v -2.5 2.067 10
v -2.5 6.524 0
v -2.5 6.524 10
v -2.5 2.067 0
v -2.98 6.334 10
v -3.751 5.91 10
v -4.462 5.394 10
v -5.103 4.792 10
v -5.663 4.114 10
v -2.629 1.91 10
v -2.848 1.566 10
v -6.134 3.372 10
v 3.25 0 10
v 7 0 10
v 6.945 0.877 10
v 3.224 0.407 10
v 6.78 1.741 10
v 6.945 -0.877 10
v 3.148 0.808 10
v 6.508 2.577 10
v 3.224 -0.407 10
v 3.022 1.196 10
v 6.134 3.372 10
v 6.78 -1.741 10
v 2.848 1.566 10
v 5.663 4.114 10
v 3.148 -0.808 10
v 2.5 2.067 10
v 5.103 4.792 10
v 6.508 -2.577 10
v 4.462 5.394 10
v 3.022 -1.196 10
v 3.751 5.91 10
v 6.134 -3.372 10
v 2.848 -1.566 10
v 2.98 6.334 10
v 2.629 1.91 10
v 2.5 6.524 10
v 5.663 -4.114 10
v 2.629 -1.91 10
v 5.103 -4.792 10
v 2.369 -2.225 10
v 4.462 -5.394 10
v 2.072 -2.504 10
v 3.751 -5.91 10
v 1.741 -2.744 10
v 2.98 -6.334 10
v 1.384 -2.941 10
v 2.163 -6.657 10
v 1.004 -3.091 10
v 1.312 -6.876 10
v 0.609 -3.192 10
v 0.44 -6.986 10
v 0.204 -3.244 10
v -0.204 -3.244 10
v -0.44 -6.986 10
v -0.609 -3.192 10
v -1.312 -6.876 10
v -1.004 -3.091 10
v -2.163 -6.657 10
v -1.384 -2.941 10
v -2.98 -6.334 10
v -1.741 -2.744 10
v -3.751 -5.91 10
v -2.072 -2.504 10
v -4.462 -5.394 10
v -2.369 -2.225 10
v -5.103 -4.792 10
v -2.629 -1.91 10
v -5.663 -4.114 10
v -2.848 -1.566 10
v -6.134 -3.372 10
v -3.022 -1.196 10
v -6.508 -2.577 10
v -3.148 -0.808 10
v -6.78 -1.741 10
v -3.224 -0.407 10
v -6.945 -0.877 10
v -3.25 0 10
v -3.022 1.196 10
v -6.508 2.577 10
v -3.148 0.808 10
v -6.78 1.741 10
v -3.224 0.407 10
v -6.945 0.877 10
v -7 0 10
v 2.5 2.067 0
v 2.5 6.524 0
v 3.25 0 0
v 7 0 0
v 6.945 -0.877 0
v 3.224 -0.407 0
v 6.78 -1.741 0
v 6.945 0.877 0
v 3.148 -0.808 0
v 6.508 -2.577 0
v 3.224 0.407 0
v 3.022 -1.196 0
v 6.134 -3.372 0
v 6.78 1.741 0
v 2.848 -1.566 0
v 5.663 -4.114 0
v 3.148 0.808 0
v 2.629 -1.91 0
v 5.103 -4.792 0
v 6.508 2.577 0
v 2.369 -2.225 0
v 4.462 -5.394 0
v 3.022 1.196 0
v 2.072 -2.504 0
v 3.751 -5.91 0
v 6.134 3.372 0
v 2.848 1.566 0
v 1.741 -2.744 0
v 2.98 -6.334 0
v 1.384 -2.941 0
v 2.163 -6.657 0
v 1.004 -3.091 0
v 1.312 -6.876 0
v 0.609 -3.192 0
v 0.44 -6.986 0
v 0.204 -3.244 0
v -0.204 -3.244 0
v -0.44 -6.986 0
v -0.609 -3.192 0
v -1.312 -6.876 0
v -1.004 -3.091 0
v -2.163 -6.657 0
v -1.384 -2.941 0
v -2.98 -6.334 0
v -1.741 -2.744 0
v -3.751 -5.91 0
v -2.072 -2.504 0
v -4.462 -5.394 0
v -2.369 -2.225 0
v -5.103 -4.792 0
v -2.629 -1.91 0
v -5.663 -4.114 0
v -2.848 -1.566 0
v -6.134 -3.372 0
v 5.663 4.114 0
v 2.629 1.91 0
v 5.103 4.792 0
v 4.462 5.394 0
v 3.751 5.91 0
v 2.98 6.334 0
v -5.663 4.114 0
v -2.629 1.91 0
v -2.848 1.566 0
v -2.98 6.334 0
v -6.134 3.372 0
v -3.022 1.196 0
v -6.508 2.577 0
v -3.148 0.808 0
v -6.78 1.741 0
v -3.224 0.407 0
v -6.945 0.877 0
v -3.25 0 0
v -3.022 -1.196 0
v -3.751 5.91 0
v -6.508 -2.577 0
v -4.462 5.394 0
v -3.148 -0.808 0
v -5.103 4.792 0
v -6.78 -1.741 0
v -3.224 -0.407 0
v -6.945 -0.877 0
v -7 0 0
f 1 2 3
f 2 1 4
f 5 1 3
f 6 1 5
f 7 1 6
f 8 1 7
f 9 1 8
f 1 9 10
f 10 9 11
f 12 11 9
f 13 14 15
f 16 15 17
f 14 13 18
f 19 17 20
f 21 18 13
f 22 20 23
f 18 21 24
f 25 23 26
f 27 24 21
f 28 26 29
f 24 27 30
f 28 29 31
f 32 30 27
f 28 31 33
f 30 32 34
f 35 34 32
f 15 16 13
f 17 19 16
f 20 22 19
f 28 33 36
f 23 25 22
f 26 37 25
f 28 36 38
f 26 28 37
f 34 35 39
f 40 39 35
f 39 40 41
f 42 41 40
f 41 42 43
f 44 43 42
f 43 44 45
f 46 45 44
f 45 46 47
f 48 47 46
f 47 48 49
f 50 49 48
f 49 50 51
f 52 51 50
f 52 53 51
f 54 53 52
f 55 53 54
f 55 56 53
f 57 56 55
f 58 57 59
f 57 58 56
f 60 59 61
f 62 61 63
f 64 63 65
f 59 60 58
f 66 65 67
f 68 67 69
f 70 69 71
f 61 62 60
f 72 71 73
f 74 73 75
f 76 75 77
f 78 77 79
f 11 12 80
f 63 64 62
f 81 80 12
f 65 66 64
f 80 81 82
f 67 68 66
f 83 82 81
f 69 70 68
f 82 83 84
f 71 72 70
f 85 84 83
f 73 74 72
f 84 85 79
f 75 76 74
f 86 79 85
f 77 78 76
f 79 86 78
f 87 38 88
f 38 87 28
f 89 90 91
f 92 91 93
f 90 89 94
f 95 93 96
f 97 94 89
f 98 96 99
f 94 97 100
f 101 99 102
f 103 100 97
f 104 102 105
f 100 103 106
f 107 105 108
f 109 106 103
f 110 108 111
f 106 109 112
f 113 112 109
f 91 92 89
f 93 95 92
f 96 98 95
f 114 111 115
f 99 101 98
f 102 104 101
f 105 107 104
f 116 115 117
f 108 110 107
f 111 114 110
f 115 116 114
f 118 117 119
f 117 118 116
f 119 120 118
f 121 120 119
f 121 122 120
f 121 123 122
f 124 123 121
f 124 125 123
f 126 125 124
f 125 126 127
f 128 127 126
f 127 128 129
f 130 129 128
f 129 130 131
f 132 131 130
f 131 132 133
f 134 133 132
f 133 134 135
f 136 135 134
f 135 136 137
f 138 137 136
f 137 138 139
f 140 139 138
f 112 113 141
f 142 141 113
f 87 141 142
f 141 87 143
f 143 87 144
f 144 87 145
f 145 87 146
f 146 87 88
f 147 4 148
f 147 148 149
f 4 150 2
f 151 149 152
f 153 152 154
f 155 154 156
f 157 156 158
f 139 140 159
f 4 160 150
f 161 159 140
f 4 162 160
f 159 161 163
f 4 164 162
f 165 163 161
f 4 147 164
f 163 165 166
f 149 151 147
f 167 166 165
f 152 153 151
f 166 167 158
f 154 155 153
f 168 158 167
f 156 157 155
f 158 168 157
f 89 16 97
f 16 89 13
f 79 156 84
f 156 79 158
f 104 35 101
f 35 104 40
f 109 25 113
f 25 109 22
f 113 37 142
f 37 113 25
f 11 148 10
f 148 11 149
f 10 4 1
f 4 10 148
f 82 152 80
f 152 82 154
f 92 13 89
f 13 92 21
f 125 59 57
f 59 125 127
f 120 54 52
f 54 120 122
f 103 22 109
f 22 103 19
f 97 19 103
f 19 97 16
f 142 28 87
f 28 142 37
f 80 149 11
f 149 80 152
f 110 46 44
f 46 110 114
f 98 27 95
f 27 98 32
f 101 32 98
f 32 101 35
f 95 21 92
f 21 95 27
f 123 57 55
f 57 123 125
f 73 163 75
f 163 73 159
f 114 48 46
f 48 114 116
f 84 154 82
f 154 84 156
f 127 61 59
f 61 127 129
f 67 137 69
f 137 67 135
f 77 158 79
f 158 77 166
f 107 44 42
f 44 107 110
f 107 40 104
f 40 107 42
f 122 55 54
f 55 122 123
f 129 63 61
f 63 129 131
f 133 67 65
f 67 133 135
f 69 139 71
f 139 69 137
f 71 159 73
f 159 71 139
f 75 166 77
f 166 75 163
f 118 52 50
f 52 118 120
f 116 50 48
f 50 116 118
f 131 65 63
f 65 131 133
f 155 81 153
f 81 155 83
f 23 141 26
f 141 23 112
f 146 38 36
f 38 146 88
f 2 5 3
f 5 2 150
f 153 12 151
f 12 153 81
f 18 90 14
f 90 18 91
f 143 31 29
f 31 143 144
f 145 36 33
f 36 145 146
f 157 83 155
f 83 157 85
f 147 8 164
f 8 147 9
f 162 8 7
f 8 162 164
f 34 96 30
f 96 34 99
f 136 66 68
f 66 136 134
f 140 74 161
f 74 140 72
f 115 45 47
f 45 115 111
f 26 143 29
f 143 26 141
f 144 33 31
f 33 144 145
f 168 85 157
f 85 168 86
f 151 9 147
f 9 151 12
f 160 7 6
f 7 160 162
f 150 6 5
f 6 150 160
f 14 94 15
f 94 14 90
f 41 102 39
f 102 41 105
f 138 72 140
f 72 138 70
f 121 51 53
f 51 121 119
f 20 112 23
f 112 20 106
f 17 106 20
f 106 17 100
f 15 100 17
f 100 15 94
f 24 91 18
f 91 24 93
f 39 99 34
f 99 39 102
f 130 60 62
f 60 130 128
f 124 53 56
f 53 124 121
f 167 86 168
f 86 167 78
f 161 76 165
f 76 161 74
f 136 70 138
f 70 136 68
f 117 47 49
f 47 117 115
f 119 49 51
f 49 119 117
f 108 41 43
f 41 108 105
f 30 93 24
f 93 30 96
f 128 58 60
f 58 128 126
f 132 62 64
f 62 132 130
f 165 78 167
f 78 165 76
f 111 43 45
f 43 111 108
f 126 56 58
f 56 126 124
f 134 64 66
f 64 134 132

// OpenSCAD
$fn = 50;


difference() {
	union() {
		cylinder(h = 10, r = 7.0000000000);
	}
	union() {
		#translate(v = [-2.5000000000, 0.0000000000, 0]) {
			cube(size = [5, 20, 10]);
		}
		translate(v = [0, 0, -100]) {
			cylinder(h = 200, r = 3.2500000000);
		}
		translate(v = [0, 0, -100]) {
			cylinder(h = 200, r = 1.8000000000);
		}
	}
}
